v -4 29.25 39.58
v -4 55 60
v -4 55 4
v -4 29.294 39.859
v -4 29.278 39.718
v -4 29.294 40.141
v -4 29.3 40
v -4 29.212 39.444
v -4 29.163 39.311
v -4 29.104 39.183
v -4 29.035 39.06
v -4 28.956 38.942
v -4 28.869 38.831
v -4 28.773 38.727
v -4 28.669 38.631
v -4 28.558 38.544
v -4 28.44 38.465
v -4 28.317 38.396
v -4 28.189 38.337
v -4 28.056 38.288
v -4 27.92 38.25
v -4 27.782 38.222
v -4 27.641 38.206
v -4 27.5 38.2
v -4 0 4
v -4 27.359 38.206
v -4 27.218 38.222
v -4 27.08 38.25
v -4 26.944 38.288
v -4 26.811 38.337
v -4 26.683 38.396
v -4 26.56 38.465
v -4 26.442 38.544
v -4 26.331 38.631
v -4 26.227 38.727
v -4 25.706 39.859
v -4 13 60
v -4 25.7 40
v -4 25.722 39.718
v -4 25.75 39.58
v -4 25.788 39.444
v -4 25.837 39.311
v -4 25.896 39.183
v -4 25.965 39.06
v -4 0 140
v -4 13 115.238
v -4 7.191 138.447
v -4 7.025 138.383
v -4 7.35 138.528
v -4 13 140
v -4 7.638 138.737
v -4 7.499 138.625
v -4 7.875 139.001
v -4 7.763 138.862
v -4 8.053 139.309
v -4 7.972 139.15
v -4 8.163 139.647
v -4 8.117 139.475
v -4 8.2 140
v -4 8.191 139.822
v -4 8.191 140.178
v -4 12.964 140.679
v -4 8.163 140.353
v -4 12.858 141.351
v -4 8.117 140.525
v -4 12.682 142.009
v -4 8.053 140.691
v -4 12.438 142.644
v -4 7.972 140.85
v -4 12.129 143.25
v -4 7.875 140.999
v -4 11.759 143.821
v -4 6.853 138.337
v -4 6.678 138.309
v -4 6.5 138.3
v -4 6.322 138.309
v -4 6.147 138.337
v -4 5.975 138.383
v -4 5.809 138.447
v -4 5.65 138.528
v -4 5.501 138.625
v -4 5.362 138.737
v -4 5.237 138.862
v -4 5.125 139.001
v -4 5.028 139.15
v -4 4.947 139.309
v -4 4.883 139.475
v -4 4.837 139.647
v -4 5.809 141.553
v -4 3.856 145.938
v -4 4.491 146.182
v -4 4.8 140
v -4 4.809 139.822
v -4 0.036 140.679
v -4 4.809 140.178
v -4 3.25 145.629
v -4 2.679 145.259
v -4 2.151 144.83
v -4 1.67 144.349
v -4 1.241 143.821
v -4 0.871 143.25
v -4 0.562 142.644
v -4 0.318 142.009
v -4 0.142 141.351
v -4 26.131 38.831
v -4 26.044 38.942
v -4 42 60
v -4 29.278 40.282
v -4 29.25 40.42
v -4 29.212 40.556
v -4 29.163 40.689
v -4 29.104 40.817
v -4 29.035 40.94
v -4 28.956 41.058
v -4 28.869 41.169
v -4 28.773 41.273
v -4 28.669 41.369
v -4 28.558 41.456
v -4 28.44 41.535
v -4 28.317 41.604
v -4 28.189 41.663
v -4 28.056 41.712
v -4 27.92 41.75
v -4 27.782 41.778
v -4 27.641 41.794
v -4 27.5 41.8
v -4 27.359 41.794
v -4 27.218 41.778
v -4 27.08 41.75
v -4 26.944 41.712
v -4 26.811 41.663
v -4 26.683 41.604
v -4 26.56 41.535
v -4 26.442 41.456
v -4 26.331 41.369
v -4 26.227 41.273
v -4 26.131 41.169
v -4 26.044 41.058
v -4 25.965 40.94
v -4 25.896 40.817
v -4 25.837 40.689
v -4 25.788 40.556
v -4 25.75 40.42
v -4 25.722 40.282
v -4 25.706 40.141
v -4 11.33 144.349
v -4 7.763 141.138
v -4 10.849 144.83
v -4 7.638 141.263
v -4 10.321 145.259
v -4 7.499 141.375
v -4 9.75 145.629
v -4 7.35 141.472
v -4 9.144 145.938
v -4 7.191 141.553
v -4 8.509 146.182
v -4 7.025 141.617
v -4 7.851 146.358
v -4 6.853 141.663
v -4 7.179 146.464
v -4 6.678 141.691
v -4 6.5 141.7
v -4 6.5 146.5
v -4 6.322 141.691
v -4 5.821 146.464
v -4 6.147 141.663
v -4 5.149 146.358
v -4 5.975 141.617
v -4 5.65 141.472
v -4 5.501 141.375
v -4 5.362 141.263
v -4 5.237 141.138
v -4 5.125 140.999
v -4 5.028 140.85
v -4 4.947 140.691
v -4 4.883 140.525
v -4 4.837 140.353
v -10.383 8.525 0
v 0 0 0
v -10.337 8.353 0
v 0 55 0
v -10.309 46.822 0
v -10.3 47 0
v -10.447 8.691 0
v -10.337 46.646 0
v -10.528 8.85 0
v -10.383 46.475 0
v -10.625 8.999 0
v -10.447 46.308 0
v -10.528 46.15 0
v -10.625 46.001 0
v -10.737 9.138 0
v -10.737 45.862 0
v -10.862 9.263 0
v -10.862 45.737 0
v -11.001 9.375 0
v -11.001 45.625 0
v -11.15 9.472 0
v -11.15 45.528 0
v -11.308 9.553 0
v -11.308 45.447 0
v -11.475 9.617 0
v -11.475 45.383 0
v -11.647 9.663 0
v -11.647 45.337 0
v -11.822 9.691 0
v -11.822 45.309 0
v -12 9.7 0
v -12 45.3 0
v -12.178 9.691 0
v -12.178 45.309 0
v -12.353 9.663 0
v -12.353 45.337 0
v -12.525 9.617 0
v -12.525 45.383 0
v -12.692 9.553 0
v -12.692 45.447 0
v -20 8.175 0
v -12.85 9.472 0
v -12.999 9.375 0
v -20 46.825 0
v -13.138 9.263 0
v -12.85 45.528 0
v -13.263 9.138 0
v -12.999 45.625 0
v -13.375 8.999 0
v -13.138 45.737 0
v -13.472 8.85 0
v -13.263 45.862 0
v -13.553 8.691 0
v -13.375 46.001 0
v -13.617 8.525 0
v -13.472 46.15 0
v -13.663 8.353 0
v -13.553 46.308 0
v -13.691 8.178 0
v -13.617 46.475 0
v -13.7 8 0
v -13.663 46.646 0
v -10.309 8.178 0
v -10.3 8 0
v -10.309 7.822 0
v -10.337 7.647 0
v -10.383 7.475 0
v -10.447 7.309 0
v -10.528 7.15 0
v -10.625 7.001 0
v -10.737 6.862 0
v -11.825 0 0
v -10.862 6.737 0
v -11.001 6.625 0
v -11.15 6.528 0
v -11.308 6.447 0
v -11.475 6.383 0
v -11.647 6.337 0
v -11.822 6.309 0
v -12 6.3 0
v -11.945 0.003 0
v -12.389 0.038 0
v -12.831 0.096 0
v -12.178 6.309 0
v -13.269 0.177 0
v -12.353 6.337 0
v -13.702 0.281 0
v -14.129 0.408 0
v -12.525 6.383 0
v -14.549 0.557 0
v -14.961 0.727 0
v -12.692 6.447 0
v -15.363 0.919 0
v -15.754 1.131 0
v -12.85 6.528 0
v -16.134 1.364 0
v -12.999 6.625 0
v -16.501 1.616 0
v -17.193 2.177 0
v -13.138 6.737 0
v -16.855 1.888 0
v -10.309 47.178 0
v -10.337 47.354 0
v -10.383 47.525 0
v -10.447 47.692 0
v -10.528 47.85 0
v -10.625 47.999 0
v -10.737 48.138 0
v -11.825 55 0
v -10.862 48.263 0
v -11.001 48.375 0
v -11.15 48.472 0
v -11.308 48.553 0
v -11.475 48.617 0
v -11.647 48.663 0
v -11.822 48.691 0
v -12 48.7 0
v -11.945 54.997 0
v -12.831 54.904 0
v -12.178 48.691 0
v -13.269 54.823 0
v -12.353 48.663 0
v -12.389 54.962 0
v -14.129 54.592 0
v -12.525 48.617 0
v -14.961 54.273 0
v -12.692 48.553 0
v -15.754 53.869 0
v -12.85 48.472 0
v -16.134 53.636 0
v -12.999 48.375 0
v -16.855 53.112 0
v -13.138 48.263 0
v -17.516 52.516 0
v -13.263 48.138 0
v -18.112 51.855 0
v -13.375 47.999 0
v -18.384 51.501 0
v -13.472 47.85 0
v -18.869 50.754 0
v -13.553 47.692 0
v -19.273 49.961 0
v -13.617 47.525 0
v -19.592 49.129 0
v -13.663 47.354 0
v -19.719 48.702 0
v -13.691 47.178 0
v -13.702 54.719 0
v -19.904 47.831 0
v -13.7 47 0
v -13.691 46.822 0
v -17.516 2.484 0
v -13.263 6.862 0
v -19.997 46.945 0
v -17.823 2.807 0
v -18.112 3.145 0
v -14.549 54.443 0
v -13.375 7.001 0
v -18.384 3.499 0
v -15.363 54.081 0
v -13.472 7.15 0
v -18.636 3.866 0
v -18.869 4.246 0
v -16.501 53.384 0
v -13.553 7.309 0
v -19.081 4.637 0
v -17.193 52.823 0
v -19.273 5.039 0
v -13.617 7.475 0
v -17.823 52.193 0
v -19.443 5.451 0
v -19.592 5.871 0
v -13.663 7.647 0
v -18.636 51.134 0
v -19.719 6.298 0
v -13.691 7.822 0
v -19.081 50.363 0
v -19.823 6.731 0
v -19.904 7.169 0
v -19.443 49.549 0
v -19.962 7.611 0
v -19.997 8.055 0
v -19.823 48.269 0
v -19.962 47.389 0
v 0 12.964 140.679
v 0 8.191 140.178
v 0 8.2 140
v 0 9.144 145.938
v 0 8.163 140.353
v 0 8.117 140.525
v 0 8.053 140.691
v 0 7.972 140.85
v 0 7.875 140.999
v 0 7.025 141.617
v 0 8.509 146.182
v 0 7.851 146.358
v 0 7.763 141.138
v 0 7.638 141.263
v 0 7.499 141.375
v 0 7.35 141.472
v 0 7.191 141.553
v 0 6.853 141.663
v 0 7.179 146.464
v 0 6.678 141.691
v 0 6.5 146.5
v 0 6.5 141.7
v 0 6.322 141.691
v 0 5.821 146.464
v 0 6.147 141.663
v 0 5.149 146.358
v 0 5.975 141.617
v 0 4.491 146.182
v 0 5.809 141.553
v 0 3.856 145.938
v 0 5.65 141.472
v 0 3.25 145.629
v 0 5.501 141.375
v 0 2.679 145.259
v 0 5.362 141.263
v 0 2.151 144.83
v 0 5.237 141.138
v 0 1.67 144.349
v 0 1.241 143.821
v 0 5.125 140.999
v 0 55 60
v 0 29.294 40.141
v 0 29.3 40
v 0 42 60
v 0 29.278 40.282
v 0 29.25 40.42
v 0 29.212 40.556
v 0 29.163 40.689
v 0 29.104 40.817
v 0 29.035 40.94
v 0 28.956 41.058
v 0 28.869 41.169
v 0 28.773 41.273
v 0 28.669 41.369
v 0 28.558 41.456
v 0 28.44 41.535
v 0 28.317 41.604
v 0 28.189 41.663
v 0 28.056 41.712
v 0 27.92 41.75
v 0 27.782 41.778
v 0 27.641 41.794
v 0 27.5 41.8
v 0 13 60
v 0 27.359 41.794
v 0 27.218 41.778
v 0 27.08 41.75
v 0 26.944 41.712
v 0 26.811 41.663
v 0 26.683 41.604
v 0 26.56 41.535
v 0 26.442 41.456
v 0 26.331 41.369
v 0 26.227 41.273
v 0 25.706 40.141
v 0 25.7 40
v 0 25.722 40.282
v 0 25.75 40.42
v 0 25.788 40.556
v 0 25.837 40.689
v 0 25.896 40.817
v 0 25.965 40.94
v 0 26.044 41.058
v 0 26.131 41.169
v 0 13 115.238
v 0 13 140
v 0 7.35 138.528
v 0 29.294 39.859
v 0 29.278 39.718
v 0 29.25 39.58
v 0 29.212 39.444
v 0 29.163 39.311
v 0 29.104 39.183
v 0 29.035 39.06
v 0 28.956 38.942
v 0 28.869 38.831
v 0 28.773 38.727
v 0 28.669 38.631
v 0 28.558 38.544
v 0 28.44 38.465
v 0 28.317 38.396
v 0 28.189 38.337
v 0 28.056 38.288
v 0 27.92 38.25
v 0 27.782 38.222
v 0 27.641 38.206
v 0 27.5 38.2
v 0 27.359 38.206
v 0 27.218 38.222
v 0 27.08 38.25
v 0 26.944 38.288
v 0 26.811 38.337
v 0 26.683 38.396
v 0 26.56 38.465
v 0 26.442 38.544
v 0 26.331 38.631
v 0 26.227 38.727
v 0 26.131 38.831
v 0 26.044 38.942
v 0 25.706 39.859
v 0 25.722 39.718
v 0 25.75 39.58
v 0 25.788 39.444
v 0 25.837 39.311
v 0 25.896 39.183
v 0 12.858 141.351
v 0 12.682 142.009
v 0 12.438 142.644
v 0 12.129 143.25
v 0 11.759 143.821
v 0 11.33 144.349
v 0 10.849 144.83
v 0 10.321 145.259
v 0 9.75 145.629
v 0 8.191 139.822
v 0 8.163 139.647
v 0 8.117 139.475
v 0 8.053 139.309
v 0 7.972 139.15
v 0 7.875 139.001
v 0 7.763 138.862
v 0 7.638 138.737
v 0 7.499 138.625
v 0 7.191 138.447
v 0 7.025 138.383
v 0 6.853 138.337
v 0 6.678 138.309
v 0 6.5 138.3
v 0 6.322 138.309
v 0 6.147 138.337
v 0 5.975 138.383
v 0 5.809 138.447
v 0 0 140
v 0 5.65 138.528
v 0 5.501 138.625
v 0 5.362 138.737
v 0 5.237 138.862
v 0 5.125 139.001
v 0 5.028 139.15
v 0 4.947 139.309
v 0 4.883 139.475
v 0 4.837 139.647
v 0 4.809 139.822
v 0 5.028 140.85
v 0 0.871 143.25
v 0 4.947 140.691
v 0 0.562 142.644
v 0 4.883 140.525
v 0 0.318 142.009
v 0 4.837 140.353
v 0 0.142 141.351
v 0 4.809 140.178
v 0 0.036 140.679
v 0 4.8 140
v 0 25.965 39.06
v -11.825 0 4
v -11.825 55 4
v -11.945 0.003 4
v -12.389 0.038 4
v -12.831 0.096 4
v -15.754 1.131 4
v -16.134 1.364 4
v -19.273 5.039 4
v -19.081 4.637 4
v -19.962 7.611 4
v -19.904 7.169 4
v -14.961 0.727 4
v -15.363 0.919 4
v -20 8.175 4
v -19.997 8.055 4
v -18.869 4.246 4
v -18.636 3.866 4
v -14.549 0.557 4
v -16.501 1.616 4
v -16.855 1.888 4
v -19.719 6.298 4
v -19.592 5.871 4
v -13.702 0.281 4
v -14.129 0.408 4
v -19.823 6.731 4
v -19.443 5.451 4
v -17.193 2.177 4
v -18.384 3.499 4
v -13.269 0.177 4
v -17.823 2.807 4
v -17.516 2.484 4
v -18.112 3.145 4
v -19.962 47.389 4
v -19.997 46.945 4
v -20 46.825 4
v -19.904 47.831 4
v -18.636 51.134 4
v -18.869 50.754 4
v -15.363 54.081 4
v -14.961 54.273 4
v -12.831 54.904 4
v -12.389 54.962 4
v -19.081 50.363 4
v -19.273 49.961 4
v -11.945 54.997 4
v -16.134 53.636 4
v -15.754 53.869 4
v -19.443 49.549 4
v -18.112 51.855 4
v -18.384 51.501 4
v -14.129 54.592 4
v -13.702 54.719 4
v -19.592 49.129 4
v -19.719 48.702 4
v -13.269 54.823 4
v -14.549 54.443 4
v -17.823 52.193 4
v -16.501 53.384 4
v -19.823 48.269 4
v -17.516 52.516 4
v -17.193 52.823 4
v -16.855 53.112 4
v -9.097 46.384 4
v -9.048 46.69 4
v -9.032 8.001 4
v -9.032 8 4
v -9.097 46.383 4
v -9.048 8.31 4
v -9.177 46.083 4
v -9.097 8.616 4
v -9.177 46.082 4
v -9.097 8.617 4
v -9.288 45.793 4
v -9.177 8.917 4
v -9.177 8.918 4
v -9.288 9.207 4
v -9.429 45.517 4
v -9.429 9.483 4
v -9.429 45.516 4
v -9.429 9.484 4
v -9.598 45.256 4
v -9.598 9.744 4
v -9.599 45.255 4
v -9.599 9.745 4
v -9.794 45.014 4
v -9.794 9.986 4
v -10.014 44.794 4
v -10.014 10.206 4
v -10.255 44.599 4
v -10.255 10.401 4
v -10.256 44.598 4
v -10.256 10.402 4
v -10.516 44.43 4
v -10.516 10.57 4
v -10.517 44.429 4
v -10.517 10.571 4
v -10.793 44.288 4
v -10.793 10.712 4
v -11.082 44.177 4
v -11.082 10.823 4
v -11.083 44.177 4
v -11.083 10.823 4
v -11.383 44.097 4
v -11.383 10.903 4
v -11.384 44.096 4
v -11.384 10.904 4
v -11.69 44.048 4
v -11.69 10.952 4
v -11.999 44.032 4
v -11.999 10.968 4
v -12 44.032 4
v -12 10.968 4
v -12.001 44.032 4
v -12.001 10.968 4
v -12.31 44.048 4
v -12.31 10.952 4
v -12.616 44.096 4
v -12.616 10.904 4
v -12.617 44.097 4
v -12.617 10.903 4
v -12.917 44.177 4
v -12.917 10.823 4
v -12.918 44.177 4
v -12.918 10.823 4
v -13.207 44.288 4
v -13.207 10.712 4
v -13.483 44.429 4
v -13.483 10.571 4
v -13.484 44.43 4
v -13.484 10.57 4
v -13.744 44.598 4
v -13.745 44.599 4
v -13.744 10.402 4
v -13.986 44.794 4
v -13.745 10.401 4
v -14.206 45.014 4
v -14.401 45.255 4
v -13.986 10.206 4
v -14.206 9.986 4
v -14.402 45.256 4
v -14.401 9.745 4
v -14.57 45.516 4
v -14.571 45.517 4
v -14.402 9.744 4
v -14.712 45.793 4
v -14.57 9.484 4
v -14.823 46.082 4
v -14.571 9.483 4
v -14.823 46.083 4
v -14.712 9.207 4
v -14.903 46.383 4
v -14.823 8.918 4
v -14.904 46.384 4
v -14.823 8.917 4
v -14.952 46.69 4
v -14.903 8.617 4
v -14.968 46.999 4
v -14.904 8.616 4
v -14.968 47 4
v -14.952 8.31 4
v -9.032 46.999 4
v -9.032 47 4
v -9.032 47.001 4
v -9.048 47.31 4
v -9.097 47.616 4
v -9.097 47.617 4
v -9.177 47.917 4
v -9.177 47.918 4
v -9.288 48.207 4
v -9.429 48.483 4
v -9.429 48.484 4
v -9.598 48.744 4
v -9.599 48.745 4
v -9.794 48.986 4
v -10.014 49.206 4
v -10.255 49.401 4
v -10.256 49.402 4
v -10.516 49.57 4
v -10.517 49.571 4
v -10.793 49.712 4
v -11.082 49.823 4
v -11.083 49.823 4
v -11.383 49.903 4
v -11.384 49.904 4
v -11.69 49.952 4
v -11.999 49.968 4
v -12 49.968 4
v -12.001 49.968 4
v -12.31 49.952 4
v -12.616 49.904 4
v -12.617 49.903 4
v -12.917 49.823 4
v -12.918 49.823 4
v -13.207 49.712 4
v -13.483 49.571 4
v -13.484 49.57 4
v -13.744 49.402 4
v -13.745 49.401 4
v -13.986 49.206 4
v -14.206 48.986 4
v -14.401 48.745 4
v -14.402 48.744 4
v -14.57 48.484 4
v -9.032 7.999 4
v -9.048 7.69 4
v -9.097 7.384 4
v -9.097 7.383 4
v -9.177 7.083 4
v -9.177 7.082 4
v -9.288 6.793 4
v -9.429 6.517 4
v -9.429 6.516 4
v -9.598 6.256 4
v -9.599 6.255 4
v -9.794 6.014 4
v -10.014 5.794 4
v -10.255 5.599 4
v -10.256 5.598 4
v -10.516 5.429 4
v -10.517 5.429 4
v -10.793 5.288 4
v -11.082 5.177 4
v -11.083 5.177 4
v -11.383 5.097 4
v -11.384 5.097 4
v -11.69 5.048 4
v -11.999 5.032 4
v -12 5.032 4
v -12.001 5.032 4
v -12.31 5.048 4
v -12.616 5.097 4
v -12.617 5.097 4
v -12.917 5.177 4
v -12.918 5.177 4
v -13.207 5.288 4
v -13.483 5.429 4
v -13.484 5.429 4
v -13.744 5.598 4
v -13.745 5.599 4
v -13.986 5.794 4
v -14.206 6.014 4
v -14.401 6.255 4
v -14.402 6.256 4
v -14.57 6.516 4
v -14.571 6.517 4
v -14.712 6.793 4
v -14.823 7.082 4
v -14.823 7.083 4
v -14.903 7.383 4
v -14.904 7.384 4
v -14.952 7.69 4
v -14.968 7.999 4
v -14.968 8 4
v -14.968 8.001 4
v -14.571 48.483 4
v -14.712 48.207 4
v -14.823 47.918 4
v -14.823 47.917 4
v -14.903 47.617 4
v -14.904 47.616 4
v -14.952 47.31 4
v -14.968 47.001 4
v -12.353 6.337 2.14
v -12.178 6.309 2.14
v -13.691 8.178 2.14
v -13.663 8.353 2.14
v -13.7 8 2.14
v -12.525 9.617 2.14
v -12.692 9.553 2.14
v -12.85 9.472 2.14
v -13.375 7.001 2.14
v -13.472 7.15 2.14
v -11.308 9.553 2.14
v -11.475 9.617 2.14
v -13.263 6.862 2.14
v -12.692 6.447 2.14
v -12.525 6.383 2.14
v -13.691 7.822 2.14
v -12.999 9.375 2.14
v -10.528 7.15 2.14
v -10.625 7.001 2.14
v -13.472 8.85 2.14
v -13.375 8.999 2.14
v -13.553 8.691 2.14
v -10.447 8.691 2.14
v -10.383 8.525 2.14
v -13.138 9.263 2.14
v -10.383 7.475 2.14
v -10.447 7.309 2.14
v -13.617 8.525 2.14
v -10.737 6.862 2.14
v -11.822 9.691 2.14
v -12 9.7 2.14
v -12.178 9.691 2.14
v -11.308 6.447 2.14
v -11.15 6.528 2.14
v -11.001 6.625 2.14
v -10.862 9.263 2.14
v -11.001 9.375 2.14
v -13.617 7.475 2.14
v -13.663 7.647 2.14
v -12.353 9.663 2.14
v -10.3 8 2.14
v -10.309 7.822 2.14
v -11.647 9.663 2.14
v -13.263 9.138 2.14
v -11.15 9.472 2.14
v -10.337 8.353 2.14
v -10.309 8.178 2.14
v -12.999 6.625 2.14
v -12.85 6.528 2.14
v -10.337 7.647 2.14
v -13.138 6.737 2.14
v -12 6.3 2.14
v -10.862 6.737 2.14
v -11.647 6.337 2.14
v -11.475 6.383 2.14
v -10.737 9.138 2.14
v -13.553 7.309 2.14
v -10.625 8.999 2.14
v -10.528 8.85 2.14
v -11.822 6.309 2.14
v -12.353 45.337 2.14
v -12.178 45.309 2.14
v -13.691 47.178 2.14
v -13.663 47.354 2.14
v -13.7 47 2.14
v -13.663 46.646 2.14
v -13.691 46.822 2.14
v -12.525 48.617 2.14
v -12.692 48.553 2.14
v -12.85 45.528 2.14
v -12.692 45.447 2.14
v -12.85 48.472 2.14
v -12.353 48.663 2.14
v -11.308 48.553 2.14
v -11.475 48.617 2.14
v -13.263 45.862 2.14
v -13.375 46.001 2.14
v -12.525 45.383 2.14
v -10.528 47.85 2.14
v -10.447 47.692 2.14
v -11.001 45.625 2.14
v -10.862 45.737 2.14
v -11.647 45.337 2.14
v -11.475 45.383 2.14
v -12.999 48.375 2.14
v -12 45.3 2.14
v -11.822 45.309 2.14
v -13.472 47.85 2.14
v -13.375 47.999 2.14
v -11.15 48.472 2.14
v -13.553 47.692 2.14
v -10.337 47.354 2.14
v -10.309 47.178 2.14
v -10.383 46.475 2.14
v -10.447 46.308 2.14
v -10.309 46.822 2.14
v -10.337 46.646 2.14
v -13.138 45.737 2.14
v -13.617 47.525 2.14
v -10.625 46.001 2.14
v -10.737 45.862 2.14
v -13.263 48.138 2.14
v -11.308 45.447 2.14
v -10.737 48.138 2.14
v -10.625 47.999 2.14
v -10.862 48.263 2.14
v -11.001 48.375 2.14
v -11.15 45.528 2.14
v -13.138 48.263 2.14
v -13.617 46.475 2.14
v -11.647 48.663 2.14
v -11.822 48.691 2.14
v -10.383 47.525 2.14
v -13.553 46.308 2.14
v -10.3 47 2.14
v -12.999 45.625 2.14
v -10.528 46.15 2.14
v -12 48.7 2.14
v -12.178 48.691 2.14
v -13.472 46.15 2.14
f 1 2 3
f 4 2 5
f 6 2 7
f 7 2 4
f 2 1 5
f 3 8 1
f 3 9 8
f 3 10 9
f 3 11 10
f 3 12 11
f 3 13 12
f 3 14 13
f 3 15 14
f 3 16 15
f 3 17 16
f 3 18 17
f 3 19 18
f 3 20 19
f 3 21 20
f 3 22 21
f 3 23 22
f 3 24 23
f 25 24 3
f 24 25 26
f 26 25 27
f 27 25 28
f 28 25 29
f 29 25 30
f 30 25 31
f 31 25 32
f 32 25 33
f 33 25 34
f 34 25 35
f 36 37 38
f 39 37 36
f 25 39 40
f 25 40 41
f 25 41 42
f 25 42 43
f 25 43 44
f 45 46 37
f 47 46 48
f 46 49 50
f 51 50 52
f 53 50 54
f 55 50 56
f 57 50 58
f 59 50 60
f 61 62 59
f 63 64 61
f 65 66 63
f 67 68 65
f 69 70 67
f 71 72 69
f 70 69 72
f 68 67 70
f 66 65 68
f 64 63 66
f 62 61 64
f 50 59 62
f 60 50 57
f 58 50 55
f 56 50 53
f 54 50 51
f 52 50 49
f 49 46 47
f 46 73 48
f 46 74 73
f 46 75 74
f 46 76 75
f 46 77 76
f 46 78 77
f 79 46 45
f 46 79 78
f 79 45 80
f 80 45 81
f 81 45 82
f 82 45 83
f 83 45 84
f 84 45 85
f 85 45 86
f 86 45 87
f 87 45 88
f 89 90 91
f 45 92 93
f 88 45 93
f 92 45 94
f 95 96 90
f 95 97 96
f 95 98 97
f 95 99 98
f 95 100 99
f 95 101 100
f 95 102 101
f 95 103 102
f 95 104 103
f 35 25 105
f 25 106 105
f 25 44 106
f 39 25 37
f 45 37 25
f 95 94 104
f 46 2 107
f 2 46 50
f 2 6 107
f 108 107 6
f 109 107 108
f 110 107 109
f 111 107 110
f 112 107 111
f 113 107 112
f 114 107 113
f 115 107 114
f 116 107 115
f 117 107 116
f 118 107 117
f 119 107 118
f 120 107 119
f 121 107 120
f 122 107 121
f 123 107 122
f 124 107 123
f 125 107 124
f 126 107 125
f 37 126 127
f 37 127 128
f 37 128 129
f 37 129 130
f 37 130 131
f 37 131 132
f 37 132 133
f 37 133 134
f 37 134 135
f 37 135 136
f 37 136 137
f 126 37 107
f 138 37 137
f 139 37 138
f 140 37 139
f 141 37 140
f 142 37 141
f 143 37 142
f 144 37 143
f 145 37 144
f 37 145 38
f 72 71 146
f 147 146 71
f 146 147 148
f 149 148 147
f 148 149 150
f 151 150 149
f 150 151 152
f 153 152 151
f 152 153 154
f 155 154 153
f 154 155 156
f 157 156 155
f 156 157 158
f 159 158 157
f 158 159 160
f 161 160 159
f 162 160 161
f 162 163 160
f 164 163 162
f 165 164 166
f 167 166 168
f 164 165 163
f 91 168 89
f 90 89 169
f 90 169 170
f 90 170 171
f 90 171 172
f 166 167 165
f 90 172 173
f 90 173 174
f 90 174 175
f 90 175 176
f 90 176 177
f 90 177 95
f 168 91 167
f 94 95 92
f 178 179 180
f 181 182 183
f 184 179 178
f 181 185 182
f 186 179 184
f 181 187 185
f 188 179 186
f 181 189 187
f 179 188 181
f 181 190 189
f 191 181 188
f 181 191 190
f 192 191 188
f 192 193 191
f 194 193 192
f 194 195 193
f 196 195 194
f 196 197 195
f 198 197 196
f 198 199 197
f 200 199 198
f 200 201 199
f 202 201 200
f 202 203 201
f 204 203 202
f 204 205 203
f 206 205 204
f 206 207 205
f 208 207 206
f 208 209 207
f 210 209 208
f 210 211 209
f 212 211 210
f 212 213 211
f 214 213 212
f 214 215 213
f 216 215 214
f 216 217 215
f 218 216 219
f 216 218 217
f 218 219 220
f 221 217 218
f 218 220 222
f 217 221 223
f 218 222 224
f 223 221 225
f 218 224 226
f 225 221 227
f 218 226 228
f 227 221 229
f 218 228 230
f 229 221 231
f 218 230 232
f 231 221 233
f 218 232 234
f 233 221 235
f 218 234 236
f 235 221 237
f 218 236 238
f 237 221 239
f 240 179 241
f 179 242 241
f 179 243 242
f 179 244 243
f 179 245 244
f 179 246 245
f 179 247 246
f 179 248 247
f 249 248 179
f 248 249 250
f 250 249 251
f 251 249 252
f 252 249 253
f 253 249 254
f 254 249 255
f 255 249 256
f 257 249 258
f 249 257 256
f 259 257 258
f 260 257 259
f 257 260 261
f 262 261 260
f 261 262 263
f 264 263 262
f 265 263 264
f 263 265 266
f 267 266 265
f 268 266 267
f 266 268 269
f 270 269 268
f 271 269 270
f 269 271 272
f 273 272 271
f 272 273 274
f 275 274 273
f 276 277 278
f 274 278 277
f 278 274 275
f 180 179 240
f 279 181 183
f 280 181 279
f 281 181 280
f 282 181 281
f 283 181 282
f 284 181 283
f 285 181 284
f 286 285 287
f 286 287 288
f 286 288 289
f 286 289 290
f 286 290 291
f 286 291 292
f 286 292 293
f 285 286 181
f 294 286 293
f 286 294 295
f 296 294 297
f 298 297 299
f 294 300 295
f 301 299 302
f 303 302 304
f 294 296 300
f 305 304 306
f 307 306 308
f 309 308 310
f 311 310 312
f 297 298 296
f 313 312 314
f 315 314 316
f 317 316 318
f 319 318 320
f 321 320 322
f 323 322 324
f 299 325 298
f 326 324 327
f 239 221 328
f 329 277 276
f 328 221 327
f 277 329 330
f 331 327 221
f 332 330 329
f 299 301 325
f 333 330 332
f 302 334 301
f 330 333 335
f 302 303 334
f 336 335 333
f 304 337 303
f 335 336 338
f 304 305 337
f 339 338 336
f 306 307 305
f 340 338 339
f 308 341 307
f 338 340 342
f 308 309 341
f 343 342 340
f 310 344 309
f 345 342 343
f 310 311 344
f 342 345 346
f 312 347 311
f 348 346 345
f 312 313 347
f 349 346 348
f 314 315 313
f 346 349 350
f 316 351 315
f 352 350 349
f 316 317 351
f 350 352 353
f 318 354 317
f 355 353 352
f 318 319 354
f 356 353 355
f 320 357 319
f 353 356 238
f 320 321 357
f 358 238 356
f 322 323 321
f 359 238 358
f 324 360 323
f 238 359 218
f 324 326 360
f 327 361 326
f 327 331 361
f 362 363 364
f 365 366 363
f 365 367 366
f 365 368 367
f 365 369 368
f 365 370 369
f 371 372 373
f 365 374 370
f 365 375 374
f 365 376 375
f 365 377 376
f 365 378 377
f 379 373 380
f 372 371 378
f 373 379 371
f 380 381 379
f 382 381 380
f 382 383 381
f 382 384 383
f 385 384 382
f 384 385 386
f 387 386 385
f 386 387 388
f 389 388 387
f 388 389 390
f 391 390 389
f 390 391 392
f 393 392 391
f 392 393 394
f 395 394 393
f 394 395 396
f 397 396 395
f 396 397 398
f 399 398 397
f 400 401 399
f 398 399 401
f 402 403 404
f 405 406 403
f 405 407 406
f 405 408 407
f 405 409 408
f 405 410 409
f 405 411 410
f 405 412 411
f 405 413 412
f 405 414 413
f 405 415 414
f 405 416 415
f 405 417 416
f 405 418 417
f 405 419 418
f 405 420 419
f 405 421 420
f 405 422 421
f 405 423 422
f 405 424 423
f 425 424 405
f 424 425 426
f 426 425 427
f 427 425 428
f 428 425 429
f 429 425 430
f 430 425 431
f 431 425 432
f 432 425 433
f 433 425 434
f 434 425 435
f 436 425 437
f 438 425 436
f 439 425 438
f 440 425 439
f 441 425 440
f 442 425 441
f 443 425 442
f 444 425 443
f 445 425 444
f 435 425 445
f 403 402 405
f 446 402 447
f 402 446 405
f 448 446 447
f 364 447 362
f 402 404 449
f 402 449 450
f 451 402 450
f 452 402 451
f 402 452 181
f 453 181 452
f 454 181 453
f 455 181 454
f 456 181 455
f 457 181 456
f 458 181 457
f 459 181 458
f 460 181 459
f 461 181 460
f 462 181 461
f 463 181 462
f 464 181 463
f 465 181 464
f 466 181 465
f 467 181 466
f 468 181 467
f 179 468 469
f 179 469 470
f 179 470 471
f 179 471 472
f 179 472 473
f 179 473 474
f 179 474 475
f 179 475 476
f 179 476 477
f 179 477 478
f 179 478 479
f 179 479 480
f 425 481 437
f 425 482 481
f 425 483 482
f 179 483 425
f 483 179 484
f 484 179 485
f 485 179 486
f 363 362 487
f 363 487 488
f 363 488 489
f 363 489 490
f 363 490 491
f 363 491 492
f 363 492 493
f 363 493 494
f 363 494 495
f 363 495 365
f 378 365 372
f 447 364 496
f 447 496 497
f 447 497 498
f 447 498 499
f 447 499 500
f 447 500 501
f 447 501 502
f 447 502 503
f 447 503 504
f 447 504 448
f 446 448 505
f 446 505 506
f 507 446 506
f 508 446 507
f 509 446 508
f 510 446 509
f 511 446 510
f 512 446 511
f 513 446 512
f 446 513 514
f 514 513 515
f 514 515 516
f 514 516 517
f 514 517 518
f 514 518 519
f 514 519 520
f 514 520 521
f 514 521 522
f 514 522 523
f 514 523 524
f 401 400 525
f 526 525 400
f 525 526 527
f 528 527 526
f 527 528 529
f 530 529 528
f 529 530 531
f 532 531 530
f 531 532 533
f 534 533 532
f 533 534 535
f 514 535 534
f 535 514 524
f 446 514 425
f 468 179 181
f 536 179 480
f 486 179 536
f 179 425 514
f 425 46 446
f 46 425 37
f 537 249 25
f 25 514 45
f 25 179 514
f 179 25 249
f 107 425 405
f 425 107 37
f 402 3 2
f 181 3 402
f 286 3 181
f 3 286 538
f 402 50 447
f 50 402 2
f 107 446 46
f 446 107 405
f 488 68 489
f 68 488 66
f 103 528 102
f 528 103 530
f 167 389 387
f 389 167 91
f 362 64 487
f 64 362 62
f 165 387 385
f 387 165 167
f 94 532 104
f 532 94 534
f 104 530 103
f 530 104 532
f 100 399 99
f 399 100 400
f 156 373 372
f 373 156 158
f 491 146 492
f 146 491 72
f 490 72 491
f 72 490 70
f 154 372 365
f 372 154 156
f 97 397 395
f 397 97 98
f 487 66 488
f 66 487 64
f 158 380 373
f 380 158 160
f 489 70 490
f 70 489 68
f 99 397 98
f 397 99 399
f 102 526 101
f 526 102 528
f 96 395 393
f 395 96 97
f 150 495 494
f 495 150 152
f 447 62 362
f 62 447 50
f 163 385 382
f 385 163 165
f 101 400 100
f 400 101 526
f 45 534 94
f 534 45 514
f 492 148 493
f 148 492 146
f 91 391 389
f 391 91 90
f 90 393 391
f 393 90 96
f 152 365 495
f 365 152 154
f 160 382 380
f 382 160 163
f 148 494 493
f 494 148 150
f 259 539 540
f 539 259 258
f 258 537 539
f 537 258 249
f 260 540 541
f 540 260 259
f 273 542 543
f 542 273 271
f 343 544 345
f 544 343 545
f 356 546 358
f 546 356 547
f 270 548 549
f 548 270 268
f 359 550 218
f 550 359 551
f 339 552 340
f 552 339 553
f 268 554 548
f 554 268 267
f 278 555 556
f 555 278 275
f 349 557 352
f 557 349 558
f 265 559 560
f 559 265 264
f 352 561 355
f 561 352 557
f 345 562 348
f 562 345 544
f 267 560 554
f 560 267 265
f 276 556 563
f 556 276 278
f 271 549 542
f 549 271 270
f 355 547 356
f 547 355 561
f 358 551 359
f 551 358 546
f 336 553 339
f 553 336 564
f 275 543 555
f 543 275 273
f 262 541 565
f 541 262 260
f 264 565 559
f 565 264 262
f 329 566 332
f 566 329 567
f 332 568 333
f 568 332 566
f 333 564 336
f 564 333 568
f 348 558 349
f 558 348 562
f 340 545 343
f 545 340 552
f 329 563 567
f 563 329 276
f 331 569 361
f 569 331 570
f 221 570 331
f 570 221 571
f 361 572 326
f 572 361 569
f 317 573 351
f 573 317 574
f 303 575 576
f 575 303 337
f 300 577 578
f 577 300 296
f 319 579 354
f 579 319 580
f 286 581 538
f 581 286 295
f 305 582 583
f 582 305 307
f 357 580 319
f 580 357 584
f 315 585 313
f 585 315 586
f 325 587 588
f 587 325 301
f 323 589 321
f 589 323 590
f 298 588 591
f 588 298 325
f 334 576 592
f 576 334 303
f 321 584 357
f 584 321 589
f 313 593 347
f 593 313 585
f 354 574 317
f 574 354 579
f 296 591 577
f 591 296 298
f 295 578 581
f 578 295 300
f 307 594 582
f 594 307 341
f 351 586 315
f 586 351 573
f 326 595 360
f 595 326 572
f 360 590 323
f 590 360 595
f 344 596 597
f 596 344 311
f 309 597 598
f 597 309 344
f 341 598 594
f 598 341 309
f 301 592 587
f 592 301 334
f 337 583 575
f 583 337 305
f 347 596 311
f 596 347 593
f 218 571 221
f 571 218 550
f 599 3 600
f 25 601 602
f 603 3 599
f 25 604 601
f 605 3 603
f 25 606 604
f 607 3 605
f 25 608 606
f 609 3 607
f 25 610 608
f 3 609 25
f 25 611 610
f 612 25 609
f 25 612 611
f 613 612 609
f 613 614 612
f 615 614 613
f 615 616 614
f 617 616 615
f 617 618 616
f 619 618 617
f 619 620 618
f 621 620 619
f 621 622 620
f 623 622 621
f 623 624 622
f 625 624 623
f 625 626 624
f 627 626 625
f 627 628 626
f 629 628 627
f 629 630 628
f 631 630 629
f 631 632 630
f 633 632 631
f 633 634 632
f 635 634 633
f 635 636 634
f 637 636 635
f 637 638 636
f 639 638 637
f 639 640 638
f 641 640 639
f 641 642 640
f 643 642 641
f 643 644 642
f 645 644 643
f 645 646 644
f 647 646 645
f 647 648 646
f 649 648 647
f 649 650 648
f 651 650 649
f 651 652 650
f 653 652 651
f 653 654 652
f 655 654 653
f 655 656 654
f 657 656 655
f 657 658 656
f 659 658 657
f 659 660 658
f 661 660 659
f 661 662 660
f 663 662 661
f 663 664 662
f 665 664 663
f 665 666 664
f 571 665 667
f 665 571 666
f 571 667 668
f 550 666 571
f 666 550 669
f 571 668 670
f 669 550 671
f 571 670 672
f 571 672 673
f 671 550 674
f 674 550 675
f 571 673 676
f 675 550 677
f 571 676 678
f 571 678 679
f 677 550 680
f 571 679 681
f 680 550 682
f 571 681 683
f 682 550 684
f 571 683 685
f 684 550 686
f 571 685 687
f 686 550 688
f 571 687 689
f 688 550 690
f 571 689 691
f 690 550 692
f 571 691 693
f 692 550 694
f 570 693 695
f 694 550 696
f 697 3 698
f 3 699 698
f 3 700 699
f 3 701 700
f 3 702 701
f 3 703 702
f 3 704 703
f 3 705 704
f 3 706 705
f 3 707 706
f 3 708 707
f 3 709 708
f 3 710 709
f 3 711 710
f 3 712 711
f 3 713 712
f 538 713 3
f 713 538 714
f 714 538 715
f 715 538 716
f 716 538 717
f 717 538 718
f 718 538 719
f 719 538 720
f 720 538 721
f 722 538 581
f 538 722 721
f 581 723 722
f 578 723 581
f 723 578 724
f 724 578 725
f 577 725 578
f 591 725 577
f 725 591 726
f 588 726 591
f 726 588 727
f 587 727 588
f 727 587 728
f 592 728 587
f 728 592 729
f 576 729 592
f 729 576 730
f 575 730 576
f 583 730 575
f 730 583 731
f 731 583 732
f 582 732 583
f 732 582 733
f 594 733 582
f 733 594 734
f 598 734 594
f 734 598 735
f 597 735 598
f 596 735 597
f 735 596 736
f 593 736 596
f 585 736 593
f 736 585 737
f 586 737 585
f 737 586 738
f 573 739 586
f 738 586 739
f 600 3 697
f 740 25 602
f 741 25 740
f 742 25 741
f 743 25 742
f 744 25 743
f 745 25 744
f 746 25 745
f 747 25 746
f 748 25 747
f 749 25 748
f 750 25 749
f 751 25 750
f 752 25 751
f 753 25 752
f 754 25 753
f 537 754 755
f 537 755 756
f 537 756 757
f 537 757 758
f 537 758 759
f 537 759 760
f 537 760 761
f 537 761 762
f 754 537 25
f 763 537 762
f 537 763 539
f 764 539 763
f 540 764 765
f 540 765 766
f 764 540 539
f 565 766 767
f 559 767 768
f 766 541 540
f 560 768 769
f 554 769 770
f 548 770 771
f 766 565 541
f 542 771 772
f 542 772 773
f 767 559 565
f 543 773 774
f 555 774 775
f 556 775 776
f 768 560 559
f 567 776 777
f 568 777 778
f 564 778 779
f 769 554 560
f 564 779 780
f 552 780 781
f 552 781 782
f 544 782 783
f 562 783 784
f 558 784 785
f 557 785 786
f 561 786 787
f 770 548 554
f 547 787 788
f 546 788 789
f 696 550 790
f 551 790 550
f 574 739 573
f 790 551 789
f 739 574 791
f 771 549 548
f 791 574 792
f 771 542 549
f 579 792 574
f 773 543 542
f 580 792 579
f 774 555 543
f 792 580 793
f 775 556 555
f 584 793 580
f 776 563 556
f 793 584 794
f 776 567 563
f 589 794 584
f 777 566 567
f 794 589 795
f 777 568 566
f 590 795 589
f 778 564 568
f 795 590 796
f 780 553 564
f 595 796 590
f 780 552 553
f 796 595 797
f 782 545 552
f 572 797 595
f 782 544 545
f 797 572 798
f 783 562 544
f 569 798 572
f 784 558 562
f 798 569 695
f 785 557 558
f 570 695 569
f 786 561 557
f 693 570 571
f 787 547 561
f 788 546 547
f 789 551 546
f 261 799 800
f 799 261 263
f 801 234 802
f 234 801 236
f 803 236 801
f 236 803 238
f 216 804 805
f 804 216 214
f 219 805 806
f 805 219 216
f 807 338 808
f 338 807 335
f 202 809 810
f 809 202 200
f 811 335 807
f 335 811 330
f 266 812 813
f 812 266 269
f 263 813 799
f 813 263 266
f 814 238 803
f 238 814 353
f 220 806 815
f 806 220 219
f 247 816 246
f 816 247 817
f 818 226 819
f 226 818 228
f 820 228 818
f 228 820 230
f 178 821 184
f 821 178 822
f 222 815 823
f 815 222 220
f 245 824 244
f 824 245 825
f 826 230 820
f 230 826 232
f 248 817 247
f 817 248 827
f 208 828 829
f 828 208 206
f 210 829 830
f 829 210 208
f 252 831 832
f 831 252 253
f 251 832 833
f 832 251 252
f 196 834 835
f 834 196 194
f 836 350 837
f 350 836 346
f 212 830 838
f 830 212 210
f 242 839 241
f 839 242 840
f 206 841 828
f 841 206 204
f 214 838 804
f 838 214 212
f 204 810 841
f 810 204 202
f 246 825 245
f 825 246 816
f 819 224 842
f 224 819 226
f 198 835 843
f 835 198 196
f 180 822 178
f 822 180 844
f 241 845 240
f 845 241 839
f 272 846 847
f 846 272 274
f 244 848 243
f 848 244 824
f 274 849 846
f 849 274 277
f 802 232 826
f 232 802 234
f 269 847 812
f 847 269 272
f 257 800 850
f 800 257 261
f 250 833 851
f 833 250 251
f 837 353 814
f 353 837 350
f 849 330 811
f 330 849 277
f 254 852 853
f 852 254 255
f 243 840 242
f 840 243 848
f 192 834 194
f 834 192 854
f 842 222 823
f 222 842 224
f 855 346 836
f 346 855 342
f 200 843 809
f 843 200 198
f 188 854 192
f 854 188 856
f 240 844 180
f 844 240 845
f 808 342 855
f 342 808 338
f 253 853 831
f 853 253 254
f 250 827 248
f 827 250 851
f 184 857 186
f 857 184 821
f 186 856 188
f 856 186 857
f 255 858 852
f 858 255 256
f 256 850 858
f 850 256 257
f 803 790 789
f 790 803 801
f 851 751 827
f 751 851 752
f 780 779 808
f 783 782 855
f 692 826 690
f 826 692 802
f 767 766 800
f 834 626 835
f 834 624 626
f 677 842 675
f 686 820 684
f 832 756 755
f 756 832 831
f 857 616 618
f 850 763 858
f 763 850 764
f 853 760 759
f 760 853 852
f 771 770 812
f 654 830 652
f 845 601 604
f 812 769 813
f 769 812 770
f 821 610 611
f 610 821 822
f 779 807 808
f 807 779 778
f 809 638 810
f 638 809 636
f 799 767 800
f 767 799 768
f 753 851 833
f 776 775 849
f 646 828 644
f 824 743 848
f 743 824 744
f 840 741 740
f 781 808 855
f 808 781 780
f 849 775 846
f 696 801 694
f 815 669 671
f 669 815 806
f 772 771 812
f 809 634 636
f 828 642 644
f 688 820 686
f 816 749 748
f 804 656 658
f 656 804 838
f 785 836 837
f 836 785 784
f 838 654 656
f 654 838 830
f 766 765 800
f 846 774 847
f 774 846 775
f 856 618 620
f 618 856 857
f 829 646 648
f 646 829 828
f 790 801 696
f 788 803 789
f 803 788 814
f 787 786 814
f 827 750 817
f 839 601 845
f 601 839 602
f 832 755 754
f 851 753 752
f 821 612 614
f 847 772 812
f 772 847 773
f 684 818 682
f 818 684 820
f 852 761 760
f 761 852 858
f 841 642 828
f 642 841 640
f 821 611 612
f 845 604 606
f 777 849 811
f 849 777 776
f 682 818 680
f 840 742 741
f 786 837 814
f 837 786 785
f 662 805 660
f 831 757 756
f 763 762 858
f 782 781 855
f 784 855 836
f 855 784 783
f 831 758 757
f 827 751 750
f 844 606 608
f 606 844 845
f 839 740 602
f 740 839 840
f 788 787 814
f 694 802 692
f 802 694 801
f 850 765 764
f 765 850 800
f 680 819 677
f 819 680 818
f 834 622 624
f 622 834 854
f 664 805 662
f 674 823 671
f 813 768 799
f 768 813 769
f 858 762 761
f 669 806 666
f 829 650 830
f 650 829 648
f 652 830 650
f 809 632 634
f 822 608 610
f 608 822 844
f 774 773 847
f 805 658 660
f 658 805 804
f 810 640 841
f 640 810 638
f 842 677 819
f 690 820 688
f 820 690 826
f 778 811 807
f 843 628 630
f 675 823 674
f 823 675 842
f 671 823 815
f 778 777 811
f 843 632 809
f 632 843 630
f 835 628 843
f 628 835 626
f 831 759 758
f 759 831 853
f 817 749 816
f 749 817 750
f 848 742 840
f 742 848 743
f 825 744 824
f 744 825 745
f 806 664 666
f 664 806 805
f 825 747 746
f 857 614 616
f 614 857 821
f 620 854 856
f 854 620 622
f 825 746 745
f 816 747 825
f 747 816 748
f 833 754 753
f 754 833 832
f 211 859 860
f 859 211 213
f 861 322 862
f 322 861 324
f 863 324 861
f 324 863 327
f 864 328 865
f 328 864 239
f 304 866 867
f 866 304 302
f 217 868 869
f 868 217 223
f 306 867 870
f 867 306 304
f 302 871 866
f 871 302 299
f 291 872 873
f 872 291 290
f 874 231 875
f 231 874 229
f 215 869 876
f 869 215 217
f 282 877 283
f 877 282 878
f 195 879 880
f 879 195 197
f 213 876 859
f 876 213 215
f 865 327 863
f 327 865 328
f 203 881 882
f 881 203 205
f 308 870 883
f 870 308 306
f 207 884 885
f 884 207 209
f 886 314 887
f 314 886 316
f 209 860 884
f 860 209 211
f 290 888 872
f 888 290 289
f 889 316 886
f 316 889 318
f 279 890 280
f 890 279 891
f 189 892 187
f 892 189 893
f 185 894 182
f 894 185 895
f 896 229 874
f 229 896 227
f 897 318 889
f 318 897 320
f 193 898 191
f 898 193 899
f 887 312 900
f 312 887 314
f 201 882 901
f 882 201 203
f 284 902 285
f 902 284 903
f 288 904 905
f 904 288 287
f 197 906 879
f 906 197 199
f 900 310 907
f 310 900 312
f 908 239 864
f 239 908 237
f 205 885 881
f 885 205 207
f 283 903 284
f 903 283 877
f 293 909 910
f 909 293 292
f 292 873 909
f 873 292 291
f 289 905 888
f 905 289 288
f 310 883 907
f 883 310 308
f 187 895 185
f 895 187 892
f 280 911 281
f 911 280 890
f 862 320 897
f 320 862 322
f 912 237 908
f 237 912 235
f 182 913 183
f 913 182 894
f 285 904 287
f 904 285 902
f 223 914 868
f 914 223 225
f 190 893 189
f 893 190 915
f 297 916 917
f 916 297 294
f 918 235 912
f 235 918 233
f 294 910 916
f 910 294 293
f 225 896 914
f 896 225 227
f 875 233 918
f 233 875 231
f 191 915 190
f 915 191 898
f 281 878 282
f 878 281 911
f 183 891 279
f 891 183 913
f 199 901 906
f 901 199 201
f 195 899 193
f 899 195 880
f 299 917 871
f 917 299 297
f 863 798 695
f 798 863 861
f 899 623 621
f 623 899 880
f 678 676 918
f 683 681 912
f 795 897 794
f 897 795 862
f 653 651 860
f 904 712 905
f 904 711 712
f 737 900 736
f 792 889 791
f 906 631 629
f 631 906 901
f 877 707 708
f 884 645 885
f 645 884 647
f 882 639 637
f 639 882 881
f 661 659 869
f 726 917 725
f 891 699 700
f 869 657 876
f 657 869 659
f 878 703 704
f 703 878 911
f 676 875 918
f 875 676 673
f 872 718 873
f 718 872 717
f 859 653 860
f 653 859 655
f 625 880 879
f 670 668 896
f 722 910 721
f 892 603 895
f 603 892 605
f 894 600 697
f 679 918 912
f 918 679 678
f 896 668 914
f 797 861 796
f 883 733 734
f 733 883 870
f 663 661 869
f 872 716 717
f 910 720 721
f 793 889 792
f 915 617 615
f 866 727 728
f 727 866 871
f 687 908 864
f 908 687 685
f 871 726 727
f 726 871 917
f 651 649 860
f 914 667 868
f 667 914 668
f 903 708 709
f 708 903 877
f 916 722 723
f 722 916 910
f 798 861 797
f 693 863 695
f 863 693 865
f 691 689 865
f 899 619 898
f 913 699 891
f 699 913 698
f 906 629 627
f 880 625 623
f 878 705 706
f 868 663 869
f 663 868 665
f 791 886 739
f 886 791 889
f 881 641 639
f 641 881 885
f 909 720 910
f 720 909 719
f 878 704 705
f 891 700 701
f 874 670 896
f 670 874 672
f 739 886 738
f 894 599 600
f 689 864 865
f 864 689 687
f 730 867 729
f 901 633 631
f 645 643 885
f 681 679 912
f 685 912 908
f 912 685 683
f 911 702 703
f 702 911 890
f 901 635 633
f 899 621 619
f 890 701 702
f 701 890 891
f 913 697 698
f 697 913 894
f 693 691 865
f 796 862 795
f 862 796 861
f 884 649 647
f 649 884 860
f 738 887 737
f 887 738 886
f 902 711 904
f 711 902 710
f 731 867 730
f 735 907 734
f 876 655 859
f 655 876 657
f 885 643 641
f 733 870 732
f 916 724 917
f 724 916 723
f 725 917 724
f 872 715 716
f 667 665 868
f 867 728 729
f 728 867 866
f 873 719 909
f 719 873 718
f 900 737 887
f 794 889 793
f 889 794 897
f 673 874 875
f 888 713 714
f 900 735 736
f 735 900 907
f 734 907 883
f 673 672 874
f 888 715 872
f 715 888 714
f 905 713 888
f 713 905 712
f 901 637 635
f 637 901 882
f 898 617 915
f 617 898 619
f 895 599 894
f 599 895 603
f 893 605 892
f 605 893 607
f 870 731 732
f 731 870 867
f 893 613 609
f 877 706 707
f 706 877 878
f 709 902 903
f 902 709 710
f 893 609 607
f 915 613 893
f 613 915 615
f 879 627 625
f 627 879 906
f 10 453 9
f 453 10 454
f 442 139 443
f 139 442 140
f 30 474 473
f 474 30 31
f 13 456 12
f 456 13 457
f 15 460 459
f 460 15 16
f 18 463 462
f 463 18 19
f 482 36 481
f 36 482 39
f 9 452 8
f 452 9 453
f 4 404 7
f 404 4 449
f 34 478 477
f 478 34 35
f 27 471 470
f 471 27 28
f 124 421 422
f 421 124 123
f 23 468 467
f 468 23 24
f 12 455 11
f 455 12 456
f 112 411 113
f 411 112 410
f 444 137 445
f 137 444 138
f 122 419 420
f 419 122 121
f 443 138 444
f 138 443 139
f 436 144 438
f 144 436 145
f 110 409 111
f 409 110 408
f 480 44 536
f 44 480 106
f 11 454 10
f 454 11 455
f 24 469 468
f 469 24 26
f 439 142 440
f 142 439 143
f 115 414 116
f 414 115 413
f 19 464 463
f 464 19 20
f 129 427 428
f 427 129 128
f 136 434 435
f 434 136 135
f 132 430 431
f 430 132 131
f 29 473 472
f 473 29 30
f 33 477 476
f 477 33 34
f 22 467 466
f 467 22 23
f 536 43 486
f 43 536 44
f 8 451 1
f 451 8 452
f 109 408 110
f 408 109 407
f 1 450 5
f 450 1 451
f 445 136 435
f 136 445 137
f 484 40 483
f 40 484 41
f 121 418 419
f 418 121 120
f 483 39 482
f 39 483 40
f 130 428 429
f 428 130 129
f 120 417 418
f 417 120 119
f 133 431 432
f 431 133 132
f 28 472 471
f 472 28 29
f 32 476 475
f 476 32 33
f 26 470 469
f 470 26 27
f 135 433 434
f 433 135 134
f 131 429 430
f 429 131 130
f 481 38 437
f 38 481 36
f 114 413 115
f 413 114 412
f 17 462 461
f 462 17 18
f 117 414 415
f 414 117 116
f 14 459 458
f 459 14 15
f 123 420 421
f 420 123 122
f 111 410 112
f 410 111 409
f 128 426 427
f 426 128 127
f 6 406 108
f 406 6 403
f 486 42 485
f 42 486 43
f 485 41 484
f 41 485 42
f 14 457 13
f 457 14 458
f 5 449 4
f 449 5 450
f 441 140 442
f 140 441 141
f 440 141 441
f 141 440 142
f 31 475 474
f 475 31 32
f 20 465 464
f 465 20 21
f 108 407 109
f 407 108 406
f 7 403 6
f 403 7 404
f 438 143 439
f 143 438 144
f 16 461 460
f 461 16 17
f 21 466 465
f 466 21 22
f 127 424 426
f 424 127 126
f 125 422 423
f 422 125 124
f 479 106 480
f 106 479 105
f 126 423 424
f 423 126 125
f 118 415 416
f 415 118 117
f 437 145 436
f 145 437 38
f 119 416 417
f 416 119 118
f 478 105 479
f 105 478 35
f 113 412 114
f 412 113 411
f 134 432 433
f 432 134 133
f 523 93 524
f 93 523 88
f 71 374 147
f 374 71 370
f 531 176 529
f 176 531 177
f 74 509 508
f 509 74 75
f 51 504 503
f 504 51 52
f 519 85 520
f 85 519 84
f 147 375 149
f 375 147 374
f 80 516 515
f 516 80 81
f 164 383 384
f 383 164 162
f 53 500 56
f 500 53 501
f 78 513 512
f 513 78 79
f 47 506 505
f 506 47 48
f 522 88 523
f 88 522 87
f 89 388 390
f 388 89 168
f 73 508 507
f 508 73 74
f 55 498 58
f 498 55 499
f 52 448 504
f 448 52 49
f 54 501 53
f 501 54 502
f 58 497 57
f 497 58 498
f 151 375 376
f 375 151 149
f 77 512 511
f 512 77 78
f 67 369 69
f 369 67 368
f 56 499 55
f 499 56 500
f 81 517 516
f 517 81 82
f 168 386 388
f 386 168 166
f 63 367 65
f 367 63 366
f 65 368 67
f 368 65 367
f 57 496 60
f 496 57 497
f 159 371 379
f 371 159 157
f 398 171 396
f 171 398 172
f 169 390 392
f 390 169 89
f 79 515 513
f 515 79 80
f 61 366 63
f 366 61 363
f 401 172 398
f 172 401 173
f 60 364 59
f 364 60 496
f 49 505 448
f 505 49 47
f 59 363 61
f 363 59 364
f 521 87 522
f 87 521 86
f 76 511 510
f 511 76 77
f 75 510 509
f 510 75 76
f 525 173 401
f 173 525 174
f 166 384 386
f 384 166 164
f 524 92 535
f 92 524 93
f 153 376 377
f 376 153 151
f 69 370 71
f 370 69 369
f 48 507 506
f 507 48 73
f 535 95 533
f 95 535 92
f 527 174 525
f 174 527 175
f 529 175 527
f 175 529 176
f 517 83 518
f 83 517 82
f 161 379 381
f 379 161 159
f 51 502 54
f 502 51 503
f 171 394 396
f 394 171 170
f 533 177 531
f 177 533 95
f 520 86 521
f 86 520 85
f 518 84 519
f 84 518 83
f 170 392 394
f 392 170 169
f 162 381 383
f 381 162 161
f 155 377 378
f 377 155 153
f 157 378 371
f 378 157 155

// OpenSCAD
// file: ../configurations/support.scad
support_height = 140;
support_width = 55;
support_motor_support_height = 60;
support_thickness = 4;
bars_width = 13;
horizontal_support_width = 20;
support_throw_diameter = 3.4;
horizontal_support_throw_diameter = 3.4;
horizontal_support_thickness = 5;
// file: subpieces/motor.scad
module components_motor_BYJMotorThrows(fn = 80) {
    union() {
        translate([0,-17.5,8])
        rotate([0,90,0])
        cylinder(h=20, d=14, center=true, $fn=fn);

        translate([0,0,0])
        rotate([0,90,0])
        cylinder(h=20, d=3.4, center=true, $fn=fn);

        translate([0,-35,0])
        rotate([0,90,0])
        cylinder(h=20, d=3.4, center=true, $fn=fn);
    }
}


module components_motor_JYJAxisThrow(d=3, fn = 80) {
    translate([0,-17.5,8])
    rotate([0,90,0])
    cylinder(h=20, d=3.6, center=true, $fn=fn);
}


module components_motor_CouplingAxisThrow(throw_size = 8) {
    // Real dimensions 3.2, 5.2
    rotate([90,0,0])
    cube([3.2, 5.2, throw_size], center=true);
}
// file: subpieces/support.scad
module components_support_VerticalHorizontalSupport(support_height = 140, support_width = 54, support_motor_support_height = 60, support_thickness = 3, bars_width = 13, horizontal_support_width = 30, fn = 20) {
    union() {
        components_support_VerticalSupport(support_height, support_width, support_motor_support_height, support_thickness, bars_width, horizontal_support_width, fn);
        // components_support_HorizontalSupport(support_width, support_thickness, horizontal_support_width);
        components_support_HorizontalSupportRounded(support_width, support_thickness, horizontal_support_width);
    }
}


module components_support_VerticalSupport(support_height = 140, support_width = 54, support_motor_support_height = 60, support_thickness = 3, bars_width = 13, horizontal_support_width = 30, fn = 20) {
    union() {
        translate([0,0,0])
        cube([support_thickness, bars_width, support_height]);

        translate([0,0,0])
        cube([support_thickness, support_width, support_motor_support_height]);

        translate([0, 0, support_height])
        rotate([0,90,0])
        linear_extrude(height = support_thickness, center = false, convexity = 10, twist = 0)
        polygon([
            [0, 0],
            [0, bars_width],
            [support_height - support_motor_support_height, support_width],
            [support_height - support_motor_support_height, support_width - bars_width]
        ]);

        translate([0, bars_width / 2, support_height])
        rotate([0,90,0])
        cylinder(h=support_thickness, d=bars_width, center=false, $fn=fn);
    }
}


module components_support_VerticalSupportEconomicPlastic(support_height, support_width, support_motor_support_height, support_thickness, bars_width, horizontal_support_width, fn=60) {
    epsilon = 0.1;
    pos_x = support_width / 2;
    pos_y = support_motor_support_height / 2;

    translate([0, pos_x, pos_y])
        cube([support_thickness * 2 + epsilon, support_width  - (bars_width * 2), support_motor_support_height  - (bars_width * 2)], center = true);
}


module components_support_VerticalSupportThrows(support_height = 140, support_throw_diameter = 3, bars_width = 13, fn = 60) {
    translate([0, bars_width / 2, support_height])
    rotate([0,90,0])
    cylinder(h=10, d=support_throw_diameter, center=true, $fn=fn);
}


module components_support_HorizontalSupport(support_width = 54, support_thickness = 3, horizontal_support_width = 30) {
    translate([0,0,0])
    cube([horizontal_support_width, support_width, support_thickness]);
}


module components_support_RoundedDifference(diameter_rounded = 20, thickness = 3, fn = 60) {
    epsilon = 0.1;
    difference(){
        cube([diameter_rounded, diameter_rounded, thickness], center=true);
        cylinder(h = thickness + epsilon, d = diameter_rounded, $fn = fn, center=true);
        translate([-diameter_rounded / 2, 0, 0]) {
            cube([diameter_rounded + epsilon, diameter_rounded + epsilon, thickness + epsilon], center=true);
        }
        translate([0,-diameter_rounded / 2, 0]) {
            cube([diameter_rounded + epsilon, diameter_rounded + epsilon, thickness + epsilon], center=true);
        }
    }
}


module components_support_HorizontalSupportRounded(support_width = 54, support_thickness = 3, horizontal_support_width = 30) {

    epsilon = 0.001;

    difference() {
        components_support_HorizontalSupport(support_width, support_thickness, horizontal_support_width);

        diameter_rounded = (support_width - support_thickness) / 3;

        translate([horizontal_support_width - (diameter_rounded / 2), diameter_rounded / 2, support_thickness / 2]) {
            rotate([0,0, -90])
            scale([1 * (1 + epsilon), 1 * (1 + epsilon),1.5])
            components_support_RoundedDifference(diameter_rounded, thickness = 3, fn = 120);
        }

        translate([horizontal_support_width - (diameter_rounded / 2), support_width - diameter_rounded / 2, support_thickness / 2]) {
            scale([1 * (1 + epsilon), 1 * (1 + epsilon),1.5])
            components_support_RoundedDifference(diameter_rounded, thickness = 3, fn = 120);
        }

    }
}



module components_support_HorizontalSupportThrows(
        horizontal_support_width = 20,
        support_width = 54,
        horizontal_support_throw_diameter = 4,
        support_thickness = 3,
        horizontal_support_thickness = 3,
        fn = 60
) {

    epsilon = 0.01;
    horizontal_support_throw_radius = horizontal_support_throw_diameter / 2;

    cone_throw_heigh = horizontal_support_throw_radius * 1.1;
    cone_throw_r2 = horizontal_support_throw_radius * 1.75;

    union(){
        translate([support_thickness + (horizontal_support_width - support_thickness) / 2,  (horizontal_support_width - support_thickness) / 2, 0]) {
            cylinder(h = horizontal_support_thickness * 2, d=horizontal_support_throw_diameter, center=true, $fn=fn);

            // cylinder(h = 2.2, r1 = 2, r2 = 3.5, center = true, $fn=fn); // Example
            translate([0,0, horizontal_support_thickness - cone_throw_heigh + epsilon])
            cylinder(h = cone_throw_heigh, r1 = horizontal_support_throw_radius, r2 = cone_throw_r2, center = false, $fn=fn);
        }

        translate([support_thickness + (horizontal_support_width - support_thickness) / 2, support_width - ((horizontal_support_width - support_thickness) / 2), 0]){
            cylinder(h=horizontal_support_thickness * 2, d=horizontal_support_throw_diameter, center=true, $fn=fn);

            translate([0,0, horizontal_support_thickness - cone_throw_heigh + epsilon])
            cylinder(h = cone_throw_heigh, r1 = horizontal_support_throw_radius, r2 = cone_throw_r2, center = false, $fn=fn);
        }
    }
}
// main file
include <subpieces/support.scad>
include <subpieces/motor.scad>
include <../configurations/support.scad>

module supportMotor2Piece() {
    // Common params for all supports
    mirror([1,0,0])
    difference() {
        components_support_VerticalHorizontalSupport(support_height, support_width, support_motor_support_height, support_thickness, bars_width, horizontal_support_width, fn=60);
        translate([0,45,32])
        components_motor_JYJAxisThrow();
        components_support_VerticalSupportThrows(support_height, support_throw_diameter, bars_width);
        components_support_HorizontalSupportThrows(
            horizontal_support_width,
            support_width,
            horizontal_support_throw_diameter,
            support_thickness,
            support_thickness
        );
    }
}

supportMotor2Piece();
